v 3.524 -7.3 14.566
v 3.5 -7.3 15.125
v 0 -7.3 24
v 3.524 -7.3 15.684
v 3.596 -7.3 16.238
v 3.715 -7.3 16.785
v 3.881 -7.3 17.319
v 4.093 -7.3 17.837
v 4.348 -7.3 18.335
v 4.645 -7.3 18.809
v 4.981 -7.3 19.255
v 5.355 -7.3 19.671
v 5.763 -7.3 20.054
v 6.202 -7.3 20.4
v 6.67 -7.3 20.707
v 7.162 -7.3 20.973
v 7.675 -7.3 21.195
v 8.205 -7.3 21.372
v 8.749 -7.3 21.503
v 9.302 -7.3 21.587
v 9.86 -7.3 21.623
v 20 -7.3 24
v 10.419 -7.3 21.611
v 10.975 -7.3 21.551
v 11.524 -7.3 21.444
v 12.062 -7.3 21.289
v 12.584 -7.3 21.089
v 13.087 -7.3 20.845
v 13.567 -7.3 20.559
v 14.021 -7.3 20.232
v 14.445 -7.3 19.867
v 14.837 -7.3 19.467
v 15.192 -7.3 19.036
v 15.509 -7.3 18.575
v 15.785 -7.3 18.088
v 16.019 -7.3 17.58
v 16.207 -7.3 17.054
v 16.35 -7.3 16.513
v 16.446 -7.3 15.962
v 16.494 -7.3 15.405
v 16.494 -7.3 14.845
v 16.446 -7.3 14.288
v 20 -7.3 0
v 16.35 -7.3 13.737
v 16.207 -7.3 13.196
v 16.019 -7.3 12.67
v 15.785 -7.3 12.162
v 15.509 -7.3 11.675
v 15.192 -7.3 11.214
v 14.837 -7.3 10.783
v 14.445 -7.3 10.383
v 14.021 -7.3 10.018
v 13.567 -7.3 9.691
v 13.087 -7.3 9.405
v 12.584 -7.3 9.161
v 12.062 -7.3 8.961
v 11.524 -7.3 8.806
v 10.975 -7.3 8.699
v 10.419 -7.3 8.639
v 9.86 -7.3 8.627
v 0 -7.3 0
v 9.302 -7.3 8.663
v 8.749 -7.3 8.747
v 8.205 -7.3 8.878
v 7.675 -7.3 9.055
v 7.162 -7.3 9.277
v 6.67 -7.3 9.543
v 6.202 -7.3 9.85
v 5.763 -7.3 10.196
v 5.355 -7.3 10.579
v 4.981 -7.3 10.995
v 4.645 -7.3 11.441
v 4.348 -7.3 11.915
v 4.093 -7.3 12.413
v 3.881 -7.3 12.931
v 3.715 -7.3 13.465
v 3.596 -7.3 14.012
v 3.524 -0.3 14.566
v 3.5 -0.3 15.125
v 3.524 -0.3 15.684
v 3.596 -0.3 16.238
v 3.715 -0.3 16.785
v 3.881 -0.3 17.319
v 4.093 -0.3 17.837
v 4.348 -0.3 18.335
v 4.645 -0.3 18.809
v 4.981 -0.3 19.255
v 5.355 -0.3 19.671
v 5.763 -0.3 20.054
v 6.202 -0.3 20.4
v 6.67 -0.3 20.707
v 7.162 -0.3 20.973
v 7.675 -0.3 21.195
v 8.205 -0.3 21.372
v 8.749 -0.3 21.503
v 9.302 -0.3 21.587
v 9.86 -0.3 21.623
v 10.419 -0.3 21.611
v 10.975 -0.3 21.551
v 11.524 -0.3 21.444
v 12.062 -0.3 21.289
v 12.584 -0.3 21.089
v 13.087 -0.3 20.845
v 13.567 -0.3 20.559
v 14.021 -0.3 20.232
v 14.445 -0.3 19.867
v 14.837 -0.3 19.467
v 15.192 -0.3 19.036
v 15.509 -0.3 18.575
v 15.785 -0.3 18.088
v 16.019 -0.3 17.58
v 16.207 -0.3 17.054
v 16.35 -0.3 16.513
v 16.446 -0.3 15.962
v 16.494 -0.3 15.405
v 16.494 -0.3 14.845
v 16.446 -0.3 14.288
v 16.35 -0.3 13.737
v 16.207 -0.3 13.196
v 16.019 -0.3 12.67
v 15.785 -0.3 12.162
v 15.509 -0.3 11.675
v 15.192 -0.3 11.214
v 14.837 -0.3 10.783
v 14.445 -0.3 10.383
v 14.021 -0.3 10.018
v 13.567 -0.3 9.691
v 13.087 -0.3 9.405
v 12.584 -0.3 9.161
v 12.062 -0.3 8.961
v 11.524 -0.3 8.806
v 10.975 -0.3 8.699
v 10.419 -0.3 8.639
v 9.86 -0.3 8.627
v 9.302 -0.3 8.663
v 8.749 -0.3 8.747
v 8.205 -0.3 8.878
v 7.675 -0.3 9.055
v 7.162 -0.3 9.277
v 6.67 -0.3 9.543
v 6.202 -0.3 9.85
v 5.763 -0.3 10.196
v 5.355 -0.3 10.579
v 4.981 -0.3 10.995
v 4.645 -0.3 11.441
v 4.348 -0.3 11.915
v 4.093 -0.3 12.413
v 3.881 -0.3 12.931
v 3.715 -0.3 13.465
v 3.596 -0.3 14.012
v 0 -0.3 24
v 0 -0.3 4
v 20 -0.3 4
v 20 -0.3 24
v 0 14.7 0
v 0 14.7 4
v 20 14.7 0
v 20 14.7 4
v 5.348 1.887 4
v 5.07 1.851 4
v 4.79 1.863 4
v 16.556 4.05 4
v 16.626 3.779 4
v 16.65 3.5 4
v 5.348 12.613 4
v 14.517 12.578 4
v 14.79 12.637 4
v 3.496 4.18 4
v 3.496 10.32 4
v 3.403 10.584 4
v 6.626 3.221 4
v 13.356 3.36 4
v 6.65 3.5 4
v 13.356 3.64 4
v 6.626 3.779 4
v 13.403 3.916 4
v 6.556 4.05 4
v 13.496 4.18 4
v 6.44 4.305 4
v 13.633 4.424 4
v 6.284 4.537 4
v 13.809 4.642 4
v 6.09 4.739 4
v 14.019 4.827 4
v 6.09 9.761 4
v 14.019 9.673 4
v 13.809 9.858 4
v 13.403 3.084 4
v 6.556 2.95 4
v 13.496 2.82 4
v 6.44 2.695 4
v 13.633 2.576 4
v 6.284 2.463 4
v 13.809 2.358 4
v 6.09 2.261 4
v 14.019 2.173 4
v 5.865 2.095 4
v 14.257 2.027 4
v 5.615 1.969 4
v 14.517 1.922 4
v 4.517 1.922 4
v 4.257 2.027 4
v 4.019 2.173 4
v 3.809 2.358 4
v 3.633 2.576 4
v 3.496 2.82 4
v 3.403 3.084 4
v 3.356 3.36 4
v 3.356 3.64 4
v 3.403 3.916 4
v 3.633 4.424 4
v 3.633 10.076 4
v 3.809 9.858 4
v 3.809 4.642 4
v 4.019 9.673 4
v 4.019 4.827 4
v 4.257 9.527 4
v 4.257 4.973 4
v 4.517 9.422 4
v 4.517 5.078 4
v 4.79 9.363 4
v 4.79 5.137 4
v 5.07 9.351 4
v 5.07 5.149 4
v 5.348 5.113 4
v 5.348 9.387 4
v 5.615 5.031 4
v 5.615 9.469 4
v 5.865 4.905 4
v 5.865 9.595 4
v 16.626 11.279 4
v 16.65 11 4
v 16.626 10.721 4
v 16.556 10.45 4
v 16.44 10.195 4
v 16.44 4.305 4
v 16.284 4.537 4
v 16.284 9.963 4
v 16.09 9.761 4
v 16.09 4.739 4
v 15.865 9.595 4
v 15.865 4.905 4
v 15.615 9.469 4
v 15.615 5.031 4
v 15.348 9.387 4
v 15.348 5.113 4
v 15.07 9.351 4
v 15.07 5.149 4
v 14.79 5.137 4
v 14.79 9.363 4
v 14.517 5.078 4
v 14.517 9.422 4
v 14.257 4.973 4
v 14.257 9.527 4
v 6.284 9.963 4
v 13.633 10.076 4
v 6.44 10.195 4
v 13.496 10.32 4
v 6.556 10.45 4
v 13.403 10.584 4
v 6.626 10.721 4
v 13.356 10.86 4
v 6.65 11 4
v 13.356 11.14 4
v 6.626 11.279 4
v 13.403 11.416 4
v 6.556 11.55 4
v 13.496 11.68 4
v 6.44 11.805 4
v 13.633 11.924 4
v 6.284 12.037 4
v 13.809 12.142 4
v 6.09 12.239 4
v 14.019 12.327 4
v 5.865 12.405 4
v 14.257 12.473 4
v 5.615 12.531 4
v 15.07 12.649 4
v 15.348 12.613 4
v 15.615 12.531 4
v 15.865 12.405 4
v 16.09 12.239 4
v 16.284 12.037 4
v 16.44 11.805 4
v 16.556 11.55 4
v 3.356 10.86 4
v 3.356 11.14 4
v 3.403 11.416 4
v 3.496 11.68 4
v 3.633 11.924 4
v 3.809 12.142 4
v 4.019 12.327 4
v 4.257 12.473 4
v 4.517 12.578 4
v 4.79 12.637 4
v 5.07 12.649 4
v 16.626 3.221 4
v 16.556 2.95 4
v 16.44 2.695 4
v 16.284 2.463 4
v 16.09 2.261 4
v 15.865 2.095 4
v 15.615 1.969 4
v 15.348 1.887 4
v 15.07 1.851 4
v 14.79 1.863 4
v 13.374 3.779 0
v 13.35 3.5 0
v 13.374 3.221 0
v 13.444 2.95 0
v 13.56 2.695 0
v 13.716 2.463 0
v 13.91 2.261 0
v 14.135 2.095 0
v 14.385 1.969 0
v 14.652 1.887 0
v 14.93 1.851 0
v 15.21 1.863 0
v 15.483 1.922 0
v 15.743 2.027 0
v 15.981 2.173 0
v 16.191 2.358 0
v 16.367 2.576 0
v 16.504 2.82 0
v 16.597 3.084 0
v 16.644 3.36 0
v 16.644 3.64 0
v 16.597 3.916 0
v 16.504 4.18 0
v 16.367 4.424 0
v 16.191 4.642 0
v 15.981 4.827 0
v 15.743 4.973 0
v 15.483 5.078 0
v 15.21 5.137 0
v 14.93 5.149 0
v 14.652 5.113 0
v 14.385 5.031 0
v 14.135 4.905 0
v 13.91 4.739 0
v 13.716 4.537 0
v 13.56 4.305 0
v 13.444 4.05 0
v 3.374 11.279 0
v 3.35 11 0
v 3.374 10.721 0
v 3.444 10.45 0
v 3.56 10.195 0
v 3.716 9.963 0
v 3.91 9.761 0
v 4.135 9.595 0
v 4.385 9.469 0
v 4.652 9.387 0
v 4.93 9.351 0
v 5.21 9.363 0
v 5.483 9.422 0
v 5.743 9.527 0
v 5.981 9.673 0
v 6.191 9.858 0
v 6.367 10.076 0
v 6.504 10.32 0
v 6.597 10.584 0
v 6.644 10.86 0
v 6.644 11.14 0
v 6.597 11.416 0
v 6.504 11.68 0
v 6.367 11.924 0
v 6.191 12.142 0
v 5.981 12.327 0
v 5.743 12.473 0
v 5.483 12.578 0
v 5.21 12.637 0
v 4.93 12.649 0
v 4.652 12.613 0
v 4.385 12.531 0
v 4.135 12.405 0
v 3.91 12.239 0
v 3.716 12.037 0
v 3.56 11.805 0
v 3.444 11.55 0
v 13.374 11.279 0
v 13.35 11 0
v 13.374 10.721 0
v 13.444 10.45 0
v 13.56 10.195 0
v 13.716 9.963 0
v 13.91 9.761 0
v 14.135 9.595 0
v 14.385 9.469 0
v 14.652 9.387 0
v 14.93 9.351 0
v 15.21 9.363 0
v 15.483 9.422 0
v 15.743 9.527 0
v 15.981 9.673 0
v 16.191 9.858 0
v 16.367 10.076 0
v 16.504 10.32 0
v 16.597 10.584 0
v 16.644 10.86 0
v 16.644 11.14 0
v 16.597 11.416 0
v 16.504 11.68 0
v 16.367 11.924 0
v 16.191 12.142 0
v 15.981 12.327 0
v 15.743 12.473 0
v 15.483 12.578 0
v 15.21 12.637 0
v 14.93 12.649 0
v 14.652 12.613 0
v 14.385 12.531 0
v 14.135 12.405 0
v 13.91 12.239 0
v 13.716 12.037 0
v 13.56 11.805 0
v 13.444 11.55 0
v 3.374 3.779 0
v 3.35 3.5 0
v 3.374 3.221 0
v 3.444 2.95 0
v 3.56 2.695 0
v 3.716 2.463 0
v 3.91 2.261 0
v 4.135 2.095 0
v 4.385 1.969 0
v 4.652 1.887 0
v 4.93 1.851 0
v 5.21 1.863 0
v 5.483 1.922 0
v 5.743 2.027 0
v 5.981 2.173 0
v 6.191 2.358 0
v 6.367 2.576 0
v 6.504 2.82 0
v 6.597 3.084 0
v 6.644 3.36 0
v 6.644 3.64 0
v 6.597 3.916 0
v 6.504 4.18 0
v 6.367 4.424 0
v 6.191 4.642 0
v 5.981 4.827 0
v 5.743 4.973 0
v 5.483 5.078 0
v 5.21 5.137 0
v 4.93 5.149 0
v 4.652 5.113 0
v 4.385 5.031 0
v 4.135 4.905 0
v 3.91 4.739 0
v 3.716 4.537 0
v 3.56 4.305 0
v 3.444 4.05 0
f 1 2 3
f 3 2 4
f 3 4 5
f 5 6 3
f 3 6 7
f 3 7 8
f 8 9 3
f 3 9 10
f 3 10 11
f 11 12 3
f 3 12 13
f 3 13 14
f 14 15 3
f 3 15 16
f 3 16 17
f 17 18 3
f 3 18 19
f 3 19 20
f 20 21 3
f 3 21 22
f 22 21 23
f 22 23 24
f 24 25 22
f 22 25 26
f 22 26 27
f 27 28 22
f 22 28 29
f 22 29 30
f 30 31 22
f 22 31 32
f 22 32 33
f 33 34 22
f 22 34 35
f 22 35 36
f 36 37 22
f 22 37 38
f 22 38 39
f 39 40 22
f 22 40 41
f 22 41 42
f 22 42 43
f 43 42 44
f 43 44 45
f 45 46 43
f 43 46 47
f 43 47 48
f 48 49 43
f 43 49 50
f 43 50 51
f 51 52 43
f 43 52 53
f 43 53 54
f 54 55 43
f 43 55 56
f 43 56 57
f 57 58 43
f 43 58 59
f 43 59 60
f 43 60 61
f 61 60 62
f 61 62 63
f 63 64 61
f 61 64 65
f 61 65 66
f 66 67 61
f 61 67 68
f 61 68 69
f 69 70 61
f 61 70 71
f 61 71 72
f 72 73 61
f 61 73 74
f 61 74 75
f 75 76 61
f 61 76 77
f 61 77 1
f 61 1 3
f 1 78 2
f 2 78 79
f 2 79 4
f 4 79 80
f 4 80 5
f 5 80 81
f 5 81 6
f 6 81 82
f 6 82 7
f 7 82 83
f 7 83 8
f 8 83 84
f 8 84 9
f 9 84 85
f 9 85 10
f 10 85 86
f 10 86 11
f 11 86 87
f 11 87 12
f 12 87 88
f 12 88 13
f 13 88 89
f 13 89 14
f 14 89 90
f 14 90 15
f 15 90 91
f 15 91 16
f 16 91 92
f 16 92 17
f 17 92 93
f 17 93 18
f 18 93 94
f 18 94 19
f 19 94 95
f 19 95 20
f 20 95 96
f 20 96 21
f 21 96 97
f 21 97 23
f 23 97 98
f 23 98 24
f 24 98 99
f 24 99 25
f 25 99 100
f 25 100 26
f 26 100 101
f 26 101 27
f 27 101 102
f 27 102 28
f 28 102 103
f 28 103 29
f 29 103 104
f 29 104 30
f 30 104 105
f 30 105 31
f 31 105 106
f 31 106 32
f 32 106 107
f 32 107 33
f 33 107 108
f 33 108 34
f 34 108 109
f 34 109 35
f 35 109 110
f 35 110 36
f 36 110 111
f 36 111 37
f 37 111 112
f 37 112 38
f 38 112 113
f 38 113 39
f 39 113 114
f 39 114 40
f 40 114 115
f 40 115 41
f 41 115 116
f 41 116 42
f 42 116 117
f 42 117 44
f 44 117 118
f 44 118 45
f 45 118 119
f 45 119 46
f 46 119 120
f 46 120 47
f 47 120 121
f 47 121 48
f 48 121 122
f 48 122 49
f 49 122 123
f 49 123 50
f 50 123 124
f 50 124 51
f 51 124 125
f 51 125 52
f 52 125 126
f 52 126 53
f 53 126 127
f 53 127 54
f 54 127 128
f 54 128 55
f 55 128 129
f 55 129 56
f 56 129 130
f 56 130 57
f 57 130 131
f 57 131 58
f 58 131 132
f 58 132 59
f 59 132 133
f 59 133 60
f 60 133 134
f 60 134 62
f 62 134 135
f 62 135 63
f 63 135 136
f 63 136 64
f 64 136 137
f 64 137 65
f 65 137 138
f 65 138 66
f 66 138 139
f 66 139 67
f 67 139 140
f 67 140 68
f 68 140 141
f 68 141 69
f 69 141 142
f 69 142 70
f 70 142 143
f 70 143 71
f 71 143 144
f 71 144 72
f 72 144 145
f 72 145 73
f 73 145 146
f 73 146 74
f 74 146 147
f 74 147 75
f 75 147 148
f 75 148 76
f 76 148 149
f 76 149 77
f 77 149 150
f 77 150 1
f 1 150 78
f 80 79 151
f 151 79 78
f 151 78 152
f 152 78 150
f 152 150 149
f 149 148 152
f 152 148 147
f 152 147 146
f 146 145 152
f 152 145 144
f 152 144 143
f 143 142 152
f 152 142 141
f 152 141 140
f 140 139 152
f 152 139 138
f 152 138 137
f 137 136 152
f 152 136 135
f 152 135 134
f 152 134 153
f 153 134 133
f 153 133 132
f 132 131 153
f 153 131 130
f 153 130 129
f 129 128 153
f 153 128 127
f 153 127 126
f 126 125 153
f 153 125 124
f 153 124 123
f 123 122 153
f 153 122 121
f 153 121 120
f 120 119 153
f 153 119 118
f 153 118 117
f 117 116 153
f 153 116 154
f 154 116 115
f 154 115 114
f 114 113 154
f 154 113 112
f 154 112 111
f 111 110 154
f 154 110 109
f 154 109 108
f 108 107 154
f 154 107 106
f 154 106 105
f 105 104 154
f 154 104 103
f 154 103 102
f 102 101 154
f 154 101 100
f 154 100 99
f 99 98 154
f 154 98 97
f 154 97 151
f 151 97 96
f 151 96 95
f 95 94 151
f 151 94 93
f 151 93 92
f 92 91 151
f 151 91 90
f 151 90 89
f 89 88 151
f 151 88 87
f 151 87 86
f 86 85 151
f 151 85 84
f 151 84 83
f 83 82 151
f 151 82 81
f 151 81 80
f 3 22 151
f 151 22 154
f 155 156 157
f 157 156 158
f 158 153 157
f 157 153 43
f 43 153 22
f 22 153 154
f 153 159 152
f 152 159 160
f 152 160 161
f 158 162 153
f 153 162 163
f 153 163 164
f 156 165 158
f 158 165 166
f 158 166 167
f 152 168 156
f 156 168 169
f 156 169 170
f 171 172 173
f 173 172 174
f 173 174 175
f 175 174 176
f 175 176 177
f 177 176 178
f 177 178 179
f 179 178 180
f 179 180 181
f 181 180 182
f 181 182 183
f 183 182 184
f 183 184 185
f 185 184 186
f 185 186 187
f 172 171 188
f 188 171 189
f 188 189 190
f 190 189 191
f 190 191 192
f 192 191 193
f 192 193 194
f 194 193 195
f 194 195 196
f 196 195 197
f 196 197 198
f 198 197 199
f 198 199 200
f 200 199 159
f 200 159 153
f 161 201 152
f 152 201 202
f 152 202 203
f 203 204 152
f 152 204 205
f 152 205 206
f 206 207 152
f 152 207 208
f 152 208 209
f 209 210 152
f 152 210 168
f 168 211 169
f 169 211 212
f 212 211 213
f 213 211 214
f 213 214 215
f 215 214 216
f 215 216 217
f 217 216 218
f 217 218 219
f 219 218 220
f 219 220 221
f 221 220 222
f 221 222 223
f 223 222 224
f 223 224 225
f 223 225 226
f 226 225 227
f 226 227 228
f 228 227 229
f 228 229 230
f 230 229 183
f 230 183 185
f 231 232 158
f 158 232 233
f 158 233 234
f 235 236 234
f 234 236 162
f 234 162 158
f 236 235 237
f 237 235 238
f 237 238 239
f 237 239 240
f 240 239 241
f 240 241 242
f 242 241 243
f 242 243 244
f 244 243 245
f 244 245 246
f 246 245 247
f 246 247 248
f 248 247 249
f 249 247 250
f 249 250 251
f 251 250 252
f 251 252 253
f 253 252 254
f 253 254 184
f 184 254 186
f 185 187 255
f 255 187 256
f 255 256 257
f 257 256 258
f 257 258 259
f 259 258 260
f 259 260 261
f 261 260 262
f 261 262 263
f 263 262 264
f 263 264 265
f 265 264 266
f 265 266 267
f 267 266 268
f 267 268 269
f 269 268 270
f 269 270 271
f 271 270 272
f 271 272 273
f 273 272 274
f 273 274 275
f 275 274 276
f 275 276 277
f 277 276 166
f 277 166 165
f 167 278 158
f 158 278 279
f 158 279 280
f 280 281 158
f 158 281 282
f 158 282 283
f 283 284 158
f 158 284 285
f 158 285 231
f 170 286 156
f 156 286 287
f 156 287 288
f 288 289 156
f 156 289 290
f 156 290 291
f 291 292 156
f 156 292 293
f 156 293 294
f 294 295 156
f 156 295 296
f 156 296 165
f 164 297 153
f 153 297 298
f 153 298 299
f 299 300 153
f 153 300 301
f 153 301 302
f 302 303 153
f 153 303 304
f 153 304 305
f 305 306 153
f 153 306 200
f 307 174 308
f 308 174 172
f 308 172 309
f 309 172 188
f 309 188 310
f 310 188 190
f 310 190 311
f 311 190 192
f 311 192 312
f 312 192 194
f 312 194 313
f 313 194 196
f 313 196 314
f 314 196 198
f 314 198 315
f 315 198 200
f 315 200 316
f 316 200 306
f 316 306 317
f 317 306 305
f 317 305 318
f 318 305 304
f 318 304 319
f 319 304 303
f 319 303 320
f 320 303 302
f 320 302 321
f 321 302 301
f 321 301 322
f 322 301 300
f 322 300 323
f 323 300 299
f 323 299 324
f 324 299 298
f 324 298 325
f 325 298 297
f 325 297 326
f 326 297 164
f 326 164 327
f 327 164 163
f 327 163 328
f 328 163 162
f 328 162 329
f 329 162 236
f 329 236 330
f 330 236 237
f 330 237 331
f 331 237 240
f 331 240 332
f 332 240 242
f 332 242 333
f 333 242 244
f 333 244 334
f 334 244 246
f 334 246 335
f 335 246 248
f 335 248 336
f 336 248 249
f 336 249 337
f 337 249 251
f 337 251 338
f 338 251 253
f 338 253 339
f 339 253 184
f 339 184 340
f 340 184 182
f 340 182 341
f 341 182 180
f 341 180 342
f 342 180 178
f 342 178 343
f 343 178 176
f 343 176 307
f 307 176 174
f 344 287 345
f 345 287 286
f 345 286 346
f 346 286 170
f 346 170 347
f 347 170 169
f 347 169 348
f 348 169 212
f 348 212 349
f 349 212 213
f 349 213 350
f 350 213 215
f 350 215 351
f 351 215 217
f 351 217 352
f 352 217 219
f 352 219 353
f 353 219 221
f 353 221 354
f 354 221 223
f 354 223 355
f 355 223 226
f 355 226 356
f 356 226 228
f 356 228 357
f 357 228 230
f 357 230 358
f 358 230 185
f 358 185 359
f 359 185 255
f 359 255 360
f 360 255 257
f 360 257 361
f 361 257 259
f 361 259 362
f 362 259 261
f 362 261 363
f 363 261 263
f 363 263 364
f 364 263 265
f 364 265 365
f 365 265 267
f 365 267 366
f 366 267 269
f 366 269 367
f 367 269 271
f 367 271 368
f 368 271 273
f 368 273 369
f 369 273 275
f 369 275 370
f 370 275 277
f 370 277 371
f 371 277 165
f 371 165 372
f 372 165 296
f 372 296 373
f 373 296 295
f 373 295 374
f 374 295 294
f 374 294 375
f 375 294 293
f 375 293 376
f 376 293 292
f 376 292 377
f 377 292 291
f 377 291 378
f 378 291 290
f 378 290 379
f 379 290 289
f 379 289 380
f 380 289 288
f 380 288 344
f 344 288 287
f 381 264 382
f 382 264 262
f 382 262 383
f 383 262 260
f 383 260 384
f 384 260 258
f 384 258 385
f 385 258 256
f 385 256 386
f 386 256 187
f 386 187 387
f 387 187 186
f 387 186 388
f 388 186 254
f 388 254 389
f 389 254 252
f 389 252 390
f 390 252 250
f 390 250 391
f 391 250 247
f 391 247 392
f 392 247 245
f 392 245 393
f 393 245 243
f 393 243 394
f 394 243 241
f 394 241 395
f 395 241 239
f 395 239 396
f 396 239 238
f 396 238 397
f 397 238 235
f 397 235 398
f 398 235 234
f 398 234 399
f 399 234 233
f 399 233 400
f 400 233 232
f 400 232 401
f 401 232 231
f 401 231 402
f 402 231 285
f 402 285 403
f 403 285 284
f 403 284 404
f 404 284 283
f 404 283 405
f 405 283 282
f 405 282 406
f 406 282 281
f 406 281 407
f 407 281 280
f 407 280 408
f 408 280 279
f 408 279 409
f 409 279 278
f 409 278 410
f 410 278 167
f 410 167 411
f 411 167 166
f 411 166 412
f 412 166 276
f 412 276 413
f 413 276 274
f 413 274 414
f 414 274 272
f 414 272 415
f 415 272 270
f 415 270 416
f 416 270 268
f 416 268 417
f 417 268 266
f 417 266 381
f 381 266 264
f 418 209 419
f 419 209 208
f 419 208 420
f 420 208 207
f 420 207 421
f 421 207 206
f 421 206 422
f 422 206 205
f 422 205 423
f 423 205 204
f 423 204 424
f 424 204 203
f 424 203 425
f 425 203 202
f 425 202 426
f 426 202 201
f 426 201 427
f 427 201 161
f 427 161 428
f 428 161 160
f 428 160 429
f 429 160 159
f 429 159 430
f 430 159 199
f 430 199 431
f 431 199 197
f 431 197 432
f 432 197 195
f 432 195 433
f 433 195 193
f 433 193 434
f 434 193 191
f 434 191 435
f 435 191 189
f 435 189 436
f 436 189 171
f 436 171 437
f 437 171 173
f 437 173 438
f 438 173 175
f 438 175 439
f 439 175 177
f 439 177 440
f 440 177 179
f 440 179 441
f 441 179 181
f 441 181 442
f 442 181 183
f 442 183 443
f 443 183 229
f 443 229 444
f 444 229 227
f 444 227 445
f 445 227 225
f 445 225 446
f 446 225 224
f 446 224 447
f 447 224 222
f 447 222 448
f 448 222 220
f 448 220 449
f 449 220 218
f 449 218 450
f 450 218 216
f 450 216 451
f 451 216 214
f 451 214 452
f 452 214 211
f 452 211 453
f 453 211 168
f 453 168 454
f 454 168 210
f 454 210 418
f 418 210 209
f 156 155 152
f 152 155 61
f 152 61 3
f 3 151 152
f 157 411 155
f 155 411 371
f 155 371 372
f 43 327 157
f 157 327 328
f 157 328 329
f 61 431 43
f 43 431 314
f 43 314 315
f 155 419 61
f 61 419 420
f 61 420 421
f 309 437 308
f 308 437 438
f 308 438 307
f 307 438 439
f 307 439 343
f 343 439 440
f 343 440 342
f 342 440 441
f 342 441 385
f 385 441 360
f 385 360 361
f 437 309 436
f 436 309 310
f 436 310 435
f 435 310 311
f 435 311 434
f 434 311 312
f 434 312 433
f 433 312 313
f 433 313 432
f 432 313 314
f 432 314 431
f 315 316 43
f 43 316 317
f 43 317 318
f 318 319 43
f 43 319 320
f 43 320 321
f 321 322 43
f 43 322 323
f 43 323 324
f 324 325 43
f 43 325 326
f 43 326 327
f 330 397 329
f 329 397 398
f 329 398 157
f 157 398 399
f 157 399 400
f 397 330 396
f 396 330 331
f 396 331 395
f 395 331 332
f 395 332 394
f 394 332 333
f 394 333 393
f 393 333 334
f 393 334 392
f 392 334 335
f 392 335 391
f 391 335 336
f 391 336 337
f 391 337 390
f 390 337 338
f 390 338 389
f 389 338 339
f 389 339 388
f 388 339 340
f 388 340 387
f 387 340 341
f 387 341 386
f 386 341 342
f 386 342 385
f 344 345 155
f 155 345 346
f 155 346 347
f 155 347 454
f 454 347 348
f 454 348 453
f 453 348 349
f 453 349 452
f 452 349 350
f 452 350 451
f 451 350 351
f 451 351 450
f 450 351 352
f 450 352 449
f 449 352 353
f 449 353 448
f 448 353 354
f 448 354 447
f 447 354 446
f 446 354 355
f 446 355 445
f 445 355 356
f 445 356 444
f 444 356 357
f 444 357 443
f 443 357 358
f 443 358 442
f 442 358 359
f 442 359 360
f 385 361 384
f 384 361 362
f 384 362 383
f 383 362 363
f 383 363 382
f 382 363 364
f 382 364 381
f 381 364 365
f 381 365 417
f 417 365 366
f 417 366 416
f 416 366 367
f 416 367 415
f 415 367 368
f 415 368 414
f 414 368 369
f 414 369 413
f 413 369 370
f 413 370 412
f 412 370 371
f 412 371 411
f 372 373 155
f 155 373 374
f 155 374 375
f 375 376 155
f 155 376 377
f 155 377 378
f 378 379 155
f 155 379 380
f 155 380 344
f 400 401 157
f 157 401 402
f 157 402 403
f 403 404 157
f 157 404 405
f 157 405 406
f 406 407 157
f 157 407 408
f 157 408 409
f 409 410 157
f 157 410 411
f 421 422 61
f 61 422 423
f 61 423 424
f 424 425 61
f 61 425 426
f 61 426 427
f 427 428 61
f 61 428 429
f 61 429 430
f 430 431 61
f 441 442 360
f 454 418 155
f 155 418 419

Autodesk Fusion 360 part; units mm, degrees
sketch "Sketch1" plane through (0, 0, 0) normal (0, 0, 1) x (1, 0, 0)
  line L0 (0, 0) -> (20, 0)
  line L1 (20, 0) -> (20, 15)
  line L2 (20, 15) -> (0, 15)
  line L3 (0, 15) -> (0, 0)
  dimension "d1" = 20
  dimension "d2" = 15
extrude "Extrude1" add sketch "Sketch1" along normal blind 4
sketch "Sketch2" plane through (0, 0, 4) normal (0, 0, 1) x (-1, 0, 0)
  line L0 (0, -15) -> (0, 0)
  line L1 (0, 0) -> (-20, 0)
  line L2 (-20, 0) -> (-20, -15)
  line L3 (-20, -15) -> (0, -15)
  point P0 (-5, -11)
  point P1 (-15, -11)
  point P2 (-15, -3.5)
  point P3 (-5, -3.5)
  dimension "d5" = 10
  dimension "d6" = 10
  dimension "d7" = 5
  dimension "d8" = 5
  dimension "d9" = 4
  dimension "d10" = 7.5
hole "Hole1" at (5, 11, 4) at (15, 11, 4) at (15, 3.5, 4) at (5, 3.5, 4) direction (0, 0, -1) diameter 3.3 depth 11 tip angle 118
extrude "Extrude2" cut 1 faces at (13.3333, 15, 1.3333) along direction (0, -1, 0) blind 0.3
extrude "Extrude3" add 1 faces at (6.6667, 0, 1.3333) along direction (0, -1, 0) blind 0.3
extrude "Extrude4" add 1 faces at (6.6667, -0.3, 1.3333) along direction (0, -1, 0) blind 5
sketch "Sketch3" plane through (0, 0, 4) normal (0, 0, 1) x (-1, 0, 0)
  line L0 (-20, -14.7) -> (0, -14.7)
  line L1 (0, -14.7) -> (0, 5.3)
  line L2 (0, 5.3) -> (-20, 5.3)
  line L3 (-20, 5.3) -> (-20, -14.7)
  circle A0 centre (-5, -3.5) radius 1.65
  circle A1 centre (-15, -11) radius 1.65
  circle A2 centre (-5, -11) radius 1.65
  circle A3 centre (-15, -3.5) radius 1.65
  line L4 (0, 5.3) -> (-20, 5.3)
  line L5 (-20, 5.3) -> (-20, 0.3)
  line L6 (-20, 0.3) -> (0, 0.3)
  line L7 (0, 0.3) -> (0, 5.3)
  dimension "d20" = 5
extrude "Extrude5" add sketch "Sketch3" along normal blind 20 contours L1 L2 L3 L4 L5 L6 L7
sketch "Sketch4" plane through (0, -0.3, 0) normal (0, 1, 0) x (-1, 0, 0)
  line L0 (-20, 4) -> (0, 4)
  line L1 (0, 4) -> (0, 24)
  line L2 (0, 24) -> (-20, 24)
  line L3 (-20, 24) -> (-20, 4)
  line L4 (0, 0) -> (-20, 0)
  point P0 (-10, 15.125)
  dimension "d23" = 15.125
  dimension "d24" = 10
hole "Hole2" at (10, -0.3, 15.125) direction (0, -1, 0) diameter 6.5 depth 11 tip angle 118
sketch "Sketch5" plane through (0, -0.3, 0) normal (0, 1, 0) x (-1, 0, 0)
  circle A0 centre (-10, 15.125) radius 3.25
  line L0 (-20, 4) -> (0, 4)
  line L1 (0, 4) -> (0, 24)
  line L2 (0, 24) -> (-20, 24)
  line L3 (-20, 24) -> (-20, 4)
  circle A1 centre (-10, 15.125) radius 3.75
  dimension "d28" = 7.5
extrude "Extrude6" cut sketch "Sketch5" against normal blind 12.823 contours A1
sketch "Sketch6" plane through (0, -5.3, 0) normal (0, -1, 0) x (1, 0, 0)
  circle A0 centre (10, 15.125) radius 3.75
  line L0 (0, 0) -> (20, 0)
  line L1 (20, 0) -> (20, 24)
  line L2 (20, 24) -> (0, 24)
  line L3 (0, 24) -> (0, 0)
  circle A1 centre (10, 15.125) radius 6.5
  dimension "d31" = 13
extrude "Extrude7" cut sketch "Sketch6" against normal blind 68.492 contours A1
extrude "Extrude8" add 1 faces at (9.8381, -5.3, 2.8811) along direction (0, -1, 0) blind 2
equation "d9 = 2.3 mm + 1.7 mm"
equation "d23 = 18.3 mm - ( 6.35 / 2 ) * 1 mm"
